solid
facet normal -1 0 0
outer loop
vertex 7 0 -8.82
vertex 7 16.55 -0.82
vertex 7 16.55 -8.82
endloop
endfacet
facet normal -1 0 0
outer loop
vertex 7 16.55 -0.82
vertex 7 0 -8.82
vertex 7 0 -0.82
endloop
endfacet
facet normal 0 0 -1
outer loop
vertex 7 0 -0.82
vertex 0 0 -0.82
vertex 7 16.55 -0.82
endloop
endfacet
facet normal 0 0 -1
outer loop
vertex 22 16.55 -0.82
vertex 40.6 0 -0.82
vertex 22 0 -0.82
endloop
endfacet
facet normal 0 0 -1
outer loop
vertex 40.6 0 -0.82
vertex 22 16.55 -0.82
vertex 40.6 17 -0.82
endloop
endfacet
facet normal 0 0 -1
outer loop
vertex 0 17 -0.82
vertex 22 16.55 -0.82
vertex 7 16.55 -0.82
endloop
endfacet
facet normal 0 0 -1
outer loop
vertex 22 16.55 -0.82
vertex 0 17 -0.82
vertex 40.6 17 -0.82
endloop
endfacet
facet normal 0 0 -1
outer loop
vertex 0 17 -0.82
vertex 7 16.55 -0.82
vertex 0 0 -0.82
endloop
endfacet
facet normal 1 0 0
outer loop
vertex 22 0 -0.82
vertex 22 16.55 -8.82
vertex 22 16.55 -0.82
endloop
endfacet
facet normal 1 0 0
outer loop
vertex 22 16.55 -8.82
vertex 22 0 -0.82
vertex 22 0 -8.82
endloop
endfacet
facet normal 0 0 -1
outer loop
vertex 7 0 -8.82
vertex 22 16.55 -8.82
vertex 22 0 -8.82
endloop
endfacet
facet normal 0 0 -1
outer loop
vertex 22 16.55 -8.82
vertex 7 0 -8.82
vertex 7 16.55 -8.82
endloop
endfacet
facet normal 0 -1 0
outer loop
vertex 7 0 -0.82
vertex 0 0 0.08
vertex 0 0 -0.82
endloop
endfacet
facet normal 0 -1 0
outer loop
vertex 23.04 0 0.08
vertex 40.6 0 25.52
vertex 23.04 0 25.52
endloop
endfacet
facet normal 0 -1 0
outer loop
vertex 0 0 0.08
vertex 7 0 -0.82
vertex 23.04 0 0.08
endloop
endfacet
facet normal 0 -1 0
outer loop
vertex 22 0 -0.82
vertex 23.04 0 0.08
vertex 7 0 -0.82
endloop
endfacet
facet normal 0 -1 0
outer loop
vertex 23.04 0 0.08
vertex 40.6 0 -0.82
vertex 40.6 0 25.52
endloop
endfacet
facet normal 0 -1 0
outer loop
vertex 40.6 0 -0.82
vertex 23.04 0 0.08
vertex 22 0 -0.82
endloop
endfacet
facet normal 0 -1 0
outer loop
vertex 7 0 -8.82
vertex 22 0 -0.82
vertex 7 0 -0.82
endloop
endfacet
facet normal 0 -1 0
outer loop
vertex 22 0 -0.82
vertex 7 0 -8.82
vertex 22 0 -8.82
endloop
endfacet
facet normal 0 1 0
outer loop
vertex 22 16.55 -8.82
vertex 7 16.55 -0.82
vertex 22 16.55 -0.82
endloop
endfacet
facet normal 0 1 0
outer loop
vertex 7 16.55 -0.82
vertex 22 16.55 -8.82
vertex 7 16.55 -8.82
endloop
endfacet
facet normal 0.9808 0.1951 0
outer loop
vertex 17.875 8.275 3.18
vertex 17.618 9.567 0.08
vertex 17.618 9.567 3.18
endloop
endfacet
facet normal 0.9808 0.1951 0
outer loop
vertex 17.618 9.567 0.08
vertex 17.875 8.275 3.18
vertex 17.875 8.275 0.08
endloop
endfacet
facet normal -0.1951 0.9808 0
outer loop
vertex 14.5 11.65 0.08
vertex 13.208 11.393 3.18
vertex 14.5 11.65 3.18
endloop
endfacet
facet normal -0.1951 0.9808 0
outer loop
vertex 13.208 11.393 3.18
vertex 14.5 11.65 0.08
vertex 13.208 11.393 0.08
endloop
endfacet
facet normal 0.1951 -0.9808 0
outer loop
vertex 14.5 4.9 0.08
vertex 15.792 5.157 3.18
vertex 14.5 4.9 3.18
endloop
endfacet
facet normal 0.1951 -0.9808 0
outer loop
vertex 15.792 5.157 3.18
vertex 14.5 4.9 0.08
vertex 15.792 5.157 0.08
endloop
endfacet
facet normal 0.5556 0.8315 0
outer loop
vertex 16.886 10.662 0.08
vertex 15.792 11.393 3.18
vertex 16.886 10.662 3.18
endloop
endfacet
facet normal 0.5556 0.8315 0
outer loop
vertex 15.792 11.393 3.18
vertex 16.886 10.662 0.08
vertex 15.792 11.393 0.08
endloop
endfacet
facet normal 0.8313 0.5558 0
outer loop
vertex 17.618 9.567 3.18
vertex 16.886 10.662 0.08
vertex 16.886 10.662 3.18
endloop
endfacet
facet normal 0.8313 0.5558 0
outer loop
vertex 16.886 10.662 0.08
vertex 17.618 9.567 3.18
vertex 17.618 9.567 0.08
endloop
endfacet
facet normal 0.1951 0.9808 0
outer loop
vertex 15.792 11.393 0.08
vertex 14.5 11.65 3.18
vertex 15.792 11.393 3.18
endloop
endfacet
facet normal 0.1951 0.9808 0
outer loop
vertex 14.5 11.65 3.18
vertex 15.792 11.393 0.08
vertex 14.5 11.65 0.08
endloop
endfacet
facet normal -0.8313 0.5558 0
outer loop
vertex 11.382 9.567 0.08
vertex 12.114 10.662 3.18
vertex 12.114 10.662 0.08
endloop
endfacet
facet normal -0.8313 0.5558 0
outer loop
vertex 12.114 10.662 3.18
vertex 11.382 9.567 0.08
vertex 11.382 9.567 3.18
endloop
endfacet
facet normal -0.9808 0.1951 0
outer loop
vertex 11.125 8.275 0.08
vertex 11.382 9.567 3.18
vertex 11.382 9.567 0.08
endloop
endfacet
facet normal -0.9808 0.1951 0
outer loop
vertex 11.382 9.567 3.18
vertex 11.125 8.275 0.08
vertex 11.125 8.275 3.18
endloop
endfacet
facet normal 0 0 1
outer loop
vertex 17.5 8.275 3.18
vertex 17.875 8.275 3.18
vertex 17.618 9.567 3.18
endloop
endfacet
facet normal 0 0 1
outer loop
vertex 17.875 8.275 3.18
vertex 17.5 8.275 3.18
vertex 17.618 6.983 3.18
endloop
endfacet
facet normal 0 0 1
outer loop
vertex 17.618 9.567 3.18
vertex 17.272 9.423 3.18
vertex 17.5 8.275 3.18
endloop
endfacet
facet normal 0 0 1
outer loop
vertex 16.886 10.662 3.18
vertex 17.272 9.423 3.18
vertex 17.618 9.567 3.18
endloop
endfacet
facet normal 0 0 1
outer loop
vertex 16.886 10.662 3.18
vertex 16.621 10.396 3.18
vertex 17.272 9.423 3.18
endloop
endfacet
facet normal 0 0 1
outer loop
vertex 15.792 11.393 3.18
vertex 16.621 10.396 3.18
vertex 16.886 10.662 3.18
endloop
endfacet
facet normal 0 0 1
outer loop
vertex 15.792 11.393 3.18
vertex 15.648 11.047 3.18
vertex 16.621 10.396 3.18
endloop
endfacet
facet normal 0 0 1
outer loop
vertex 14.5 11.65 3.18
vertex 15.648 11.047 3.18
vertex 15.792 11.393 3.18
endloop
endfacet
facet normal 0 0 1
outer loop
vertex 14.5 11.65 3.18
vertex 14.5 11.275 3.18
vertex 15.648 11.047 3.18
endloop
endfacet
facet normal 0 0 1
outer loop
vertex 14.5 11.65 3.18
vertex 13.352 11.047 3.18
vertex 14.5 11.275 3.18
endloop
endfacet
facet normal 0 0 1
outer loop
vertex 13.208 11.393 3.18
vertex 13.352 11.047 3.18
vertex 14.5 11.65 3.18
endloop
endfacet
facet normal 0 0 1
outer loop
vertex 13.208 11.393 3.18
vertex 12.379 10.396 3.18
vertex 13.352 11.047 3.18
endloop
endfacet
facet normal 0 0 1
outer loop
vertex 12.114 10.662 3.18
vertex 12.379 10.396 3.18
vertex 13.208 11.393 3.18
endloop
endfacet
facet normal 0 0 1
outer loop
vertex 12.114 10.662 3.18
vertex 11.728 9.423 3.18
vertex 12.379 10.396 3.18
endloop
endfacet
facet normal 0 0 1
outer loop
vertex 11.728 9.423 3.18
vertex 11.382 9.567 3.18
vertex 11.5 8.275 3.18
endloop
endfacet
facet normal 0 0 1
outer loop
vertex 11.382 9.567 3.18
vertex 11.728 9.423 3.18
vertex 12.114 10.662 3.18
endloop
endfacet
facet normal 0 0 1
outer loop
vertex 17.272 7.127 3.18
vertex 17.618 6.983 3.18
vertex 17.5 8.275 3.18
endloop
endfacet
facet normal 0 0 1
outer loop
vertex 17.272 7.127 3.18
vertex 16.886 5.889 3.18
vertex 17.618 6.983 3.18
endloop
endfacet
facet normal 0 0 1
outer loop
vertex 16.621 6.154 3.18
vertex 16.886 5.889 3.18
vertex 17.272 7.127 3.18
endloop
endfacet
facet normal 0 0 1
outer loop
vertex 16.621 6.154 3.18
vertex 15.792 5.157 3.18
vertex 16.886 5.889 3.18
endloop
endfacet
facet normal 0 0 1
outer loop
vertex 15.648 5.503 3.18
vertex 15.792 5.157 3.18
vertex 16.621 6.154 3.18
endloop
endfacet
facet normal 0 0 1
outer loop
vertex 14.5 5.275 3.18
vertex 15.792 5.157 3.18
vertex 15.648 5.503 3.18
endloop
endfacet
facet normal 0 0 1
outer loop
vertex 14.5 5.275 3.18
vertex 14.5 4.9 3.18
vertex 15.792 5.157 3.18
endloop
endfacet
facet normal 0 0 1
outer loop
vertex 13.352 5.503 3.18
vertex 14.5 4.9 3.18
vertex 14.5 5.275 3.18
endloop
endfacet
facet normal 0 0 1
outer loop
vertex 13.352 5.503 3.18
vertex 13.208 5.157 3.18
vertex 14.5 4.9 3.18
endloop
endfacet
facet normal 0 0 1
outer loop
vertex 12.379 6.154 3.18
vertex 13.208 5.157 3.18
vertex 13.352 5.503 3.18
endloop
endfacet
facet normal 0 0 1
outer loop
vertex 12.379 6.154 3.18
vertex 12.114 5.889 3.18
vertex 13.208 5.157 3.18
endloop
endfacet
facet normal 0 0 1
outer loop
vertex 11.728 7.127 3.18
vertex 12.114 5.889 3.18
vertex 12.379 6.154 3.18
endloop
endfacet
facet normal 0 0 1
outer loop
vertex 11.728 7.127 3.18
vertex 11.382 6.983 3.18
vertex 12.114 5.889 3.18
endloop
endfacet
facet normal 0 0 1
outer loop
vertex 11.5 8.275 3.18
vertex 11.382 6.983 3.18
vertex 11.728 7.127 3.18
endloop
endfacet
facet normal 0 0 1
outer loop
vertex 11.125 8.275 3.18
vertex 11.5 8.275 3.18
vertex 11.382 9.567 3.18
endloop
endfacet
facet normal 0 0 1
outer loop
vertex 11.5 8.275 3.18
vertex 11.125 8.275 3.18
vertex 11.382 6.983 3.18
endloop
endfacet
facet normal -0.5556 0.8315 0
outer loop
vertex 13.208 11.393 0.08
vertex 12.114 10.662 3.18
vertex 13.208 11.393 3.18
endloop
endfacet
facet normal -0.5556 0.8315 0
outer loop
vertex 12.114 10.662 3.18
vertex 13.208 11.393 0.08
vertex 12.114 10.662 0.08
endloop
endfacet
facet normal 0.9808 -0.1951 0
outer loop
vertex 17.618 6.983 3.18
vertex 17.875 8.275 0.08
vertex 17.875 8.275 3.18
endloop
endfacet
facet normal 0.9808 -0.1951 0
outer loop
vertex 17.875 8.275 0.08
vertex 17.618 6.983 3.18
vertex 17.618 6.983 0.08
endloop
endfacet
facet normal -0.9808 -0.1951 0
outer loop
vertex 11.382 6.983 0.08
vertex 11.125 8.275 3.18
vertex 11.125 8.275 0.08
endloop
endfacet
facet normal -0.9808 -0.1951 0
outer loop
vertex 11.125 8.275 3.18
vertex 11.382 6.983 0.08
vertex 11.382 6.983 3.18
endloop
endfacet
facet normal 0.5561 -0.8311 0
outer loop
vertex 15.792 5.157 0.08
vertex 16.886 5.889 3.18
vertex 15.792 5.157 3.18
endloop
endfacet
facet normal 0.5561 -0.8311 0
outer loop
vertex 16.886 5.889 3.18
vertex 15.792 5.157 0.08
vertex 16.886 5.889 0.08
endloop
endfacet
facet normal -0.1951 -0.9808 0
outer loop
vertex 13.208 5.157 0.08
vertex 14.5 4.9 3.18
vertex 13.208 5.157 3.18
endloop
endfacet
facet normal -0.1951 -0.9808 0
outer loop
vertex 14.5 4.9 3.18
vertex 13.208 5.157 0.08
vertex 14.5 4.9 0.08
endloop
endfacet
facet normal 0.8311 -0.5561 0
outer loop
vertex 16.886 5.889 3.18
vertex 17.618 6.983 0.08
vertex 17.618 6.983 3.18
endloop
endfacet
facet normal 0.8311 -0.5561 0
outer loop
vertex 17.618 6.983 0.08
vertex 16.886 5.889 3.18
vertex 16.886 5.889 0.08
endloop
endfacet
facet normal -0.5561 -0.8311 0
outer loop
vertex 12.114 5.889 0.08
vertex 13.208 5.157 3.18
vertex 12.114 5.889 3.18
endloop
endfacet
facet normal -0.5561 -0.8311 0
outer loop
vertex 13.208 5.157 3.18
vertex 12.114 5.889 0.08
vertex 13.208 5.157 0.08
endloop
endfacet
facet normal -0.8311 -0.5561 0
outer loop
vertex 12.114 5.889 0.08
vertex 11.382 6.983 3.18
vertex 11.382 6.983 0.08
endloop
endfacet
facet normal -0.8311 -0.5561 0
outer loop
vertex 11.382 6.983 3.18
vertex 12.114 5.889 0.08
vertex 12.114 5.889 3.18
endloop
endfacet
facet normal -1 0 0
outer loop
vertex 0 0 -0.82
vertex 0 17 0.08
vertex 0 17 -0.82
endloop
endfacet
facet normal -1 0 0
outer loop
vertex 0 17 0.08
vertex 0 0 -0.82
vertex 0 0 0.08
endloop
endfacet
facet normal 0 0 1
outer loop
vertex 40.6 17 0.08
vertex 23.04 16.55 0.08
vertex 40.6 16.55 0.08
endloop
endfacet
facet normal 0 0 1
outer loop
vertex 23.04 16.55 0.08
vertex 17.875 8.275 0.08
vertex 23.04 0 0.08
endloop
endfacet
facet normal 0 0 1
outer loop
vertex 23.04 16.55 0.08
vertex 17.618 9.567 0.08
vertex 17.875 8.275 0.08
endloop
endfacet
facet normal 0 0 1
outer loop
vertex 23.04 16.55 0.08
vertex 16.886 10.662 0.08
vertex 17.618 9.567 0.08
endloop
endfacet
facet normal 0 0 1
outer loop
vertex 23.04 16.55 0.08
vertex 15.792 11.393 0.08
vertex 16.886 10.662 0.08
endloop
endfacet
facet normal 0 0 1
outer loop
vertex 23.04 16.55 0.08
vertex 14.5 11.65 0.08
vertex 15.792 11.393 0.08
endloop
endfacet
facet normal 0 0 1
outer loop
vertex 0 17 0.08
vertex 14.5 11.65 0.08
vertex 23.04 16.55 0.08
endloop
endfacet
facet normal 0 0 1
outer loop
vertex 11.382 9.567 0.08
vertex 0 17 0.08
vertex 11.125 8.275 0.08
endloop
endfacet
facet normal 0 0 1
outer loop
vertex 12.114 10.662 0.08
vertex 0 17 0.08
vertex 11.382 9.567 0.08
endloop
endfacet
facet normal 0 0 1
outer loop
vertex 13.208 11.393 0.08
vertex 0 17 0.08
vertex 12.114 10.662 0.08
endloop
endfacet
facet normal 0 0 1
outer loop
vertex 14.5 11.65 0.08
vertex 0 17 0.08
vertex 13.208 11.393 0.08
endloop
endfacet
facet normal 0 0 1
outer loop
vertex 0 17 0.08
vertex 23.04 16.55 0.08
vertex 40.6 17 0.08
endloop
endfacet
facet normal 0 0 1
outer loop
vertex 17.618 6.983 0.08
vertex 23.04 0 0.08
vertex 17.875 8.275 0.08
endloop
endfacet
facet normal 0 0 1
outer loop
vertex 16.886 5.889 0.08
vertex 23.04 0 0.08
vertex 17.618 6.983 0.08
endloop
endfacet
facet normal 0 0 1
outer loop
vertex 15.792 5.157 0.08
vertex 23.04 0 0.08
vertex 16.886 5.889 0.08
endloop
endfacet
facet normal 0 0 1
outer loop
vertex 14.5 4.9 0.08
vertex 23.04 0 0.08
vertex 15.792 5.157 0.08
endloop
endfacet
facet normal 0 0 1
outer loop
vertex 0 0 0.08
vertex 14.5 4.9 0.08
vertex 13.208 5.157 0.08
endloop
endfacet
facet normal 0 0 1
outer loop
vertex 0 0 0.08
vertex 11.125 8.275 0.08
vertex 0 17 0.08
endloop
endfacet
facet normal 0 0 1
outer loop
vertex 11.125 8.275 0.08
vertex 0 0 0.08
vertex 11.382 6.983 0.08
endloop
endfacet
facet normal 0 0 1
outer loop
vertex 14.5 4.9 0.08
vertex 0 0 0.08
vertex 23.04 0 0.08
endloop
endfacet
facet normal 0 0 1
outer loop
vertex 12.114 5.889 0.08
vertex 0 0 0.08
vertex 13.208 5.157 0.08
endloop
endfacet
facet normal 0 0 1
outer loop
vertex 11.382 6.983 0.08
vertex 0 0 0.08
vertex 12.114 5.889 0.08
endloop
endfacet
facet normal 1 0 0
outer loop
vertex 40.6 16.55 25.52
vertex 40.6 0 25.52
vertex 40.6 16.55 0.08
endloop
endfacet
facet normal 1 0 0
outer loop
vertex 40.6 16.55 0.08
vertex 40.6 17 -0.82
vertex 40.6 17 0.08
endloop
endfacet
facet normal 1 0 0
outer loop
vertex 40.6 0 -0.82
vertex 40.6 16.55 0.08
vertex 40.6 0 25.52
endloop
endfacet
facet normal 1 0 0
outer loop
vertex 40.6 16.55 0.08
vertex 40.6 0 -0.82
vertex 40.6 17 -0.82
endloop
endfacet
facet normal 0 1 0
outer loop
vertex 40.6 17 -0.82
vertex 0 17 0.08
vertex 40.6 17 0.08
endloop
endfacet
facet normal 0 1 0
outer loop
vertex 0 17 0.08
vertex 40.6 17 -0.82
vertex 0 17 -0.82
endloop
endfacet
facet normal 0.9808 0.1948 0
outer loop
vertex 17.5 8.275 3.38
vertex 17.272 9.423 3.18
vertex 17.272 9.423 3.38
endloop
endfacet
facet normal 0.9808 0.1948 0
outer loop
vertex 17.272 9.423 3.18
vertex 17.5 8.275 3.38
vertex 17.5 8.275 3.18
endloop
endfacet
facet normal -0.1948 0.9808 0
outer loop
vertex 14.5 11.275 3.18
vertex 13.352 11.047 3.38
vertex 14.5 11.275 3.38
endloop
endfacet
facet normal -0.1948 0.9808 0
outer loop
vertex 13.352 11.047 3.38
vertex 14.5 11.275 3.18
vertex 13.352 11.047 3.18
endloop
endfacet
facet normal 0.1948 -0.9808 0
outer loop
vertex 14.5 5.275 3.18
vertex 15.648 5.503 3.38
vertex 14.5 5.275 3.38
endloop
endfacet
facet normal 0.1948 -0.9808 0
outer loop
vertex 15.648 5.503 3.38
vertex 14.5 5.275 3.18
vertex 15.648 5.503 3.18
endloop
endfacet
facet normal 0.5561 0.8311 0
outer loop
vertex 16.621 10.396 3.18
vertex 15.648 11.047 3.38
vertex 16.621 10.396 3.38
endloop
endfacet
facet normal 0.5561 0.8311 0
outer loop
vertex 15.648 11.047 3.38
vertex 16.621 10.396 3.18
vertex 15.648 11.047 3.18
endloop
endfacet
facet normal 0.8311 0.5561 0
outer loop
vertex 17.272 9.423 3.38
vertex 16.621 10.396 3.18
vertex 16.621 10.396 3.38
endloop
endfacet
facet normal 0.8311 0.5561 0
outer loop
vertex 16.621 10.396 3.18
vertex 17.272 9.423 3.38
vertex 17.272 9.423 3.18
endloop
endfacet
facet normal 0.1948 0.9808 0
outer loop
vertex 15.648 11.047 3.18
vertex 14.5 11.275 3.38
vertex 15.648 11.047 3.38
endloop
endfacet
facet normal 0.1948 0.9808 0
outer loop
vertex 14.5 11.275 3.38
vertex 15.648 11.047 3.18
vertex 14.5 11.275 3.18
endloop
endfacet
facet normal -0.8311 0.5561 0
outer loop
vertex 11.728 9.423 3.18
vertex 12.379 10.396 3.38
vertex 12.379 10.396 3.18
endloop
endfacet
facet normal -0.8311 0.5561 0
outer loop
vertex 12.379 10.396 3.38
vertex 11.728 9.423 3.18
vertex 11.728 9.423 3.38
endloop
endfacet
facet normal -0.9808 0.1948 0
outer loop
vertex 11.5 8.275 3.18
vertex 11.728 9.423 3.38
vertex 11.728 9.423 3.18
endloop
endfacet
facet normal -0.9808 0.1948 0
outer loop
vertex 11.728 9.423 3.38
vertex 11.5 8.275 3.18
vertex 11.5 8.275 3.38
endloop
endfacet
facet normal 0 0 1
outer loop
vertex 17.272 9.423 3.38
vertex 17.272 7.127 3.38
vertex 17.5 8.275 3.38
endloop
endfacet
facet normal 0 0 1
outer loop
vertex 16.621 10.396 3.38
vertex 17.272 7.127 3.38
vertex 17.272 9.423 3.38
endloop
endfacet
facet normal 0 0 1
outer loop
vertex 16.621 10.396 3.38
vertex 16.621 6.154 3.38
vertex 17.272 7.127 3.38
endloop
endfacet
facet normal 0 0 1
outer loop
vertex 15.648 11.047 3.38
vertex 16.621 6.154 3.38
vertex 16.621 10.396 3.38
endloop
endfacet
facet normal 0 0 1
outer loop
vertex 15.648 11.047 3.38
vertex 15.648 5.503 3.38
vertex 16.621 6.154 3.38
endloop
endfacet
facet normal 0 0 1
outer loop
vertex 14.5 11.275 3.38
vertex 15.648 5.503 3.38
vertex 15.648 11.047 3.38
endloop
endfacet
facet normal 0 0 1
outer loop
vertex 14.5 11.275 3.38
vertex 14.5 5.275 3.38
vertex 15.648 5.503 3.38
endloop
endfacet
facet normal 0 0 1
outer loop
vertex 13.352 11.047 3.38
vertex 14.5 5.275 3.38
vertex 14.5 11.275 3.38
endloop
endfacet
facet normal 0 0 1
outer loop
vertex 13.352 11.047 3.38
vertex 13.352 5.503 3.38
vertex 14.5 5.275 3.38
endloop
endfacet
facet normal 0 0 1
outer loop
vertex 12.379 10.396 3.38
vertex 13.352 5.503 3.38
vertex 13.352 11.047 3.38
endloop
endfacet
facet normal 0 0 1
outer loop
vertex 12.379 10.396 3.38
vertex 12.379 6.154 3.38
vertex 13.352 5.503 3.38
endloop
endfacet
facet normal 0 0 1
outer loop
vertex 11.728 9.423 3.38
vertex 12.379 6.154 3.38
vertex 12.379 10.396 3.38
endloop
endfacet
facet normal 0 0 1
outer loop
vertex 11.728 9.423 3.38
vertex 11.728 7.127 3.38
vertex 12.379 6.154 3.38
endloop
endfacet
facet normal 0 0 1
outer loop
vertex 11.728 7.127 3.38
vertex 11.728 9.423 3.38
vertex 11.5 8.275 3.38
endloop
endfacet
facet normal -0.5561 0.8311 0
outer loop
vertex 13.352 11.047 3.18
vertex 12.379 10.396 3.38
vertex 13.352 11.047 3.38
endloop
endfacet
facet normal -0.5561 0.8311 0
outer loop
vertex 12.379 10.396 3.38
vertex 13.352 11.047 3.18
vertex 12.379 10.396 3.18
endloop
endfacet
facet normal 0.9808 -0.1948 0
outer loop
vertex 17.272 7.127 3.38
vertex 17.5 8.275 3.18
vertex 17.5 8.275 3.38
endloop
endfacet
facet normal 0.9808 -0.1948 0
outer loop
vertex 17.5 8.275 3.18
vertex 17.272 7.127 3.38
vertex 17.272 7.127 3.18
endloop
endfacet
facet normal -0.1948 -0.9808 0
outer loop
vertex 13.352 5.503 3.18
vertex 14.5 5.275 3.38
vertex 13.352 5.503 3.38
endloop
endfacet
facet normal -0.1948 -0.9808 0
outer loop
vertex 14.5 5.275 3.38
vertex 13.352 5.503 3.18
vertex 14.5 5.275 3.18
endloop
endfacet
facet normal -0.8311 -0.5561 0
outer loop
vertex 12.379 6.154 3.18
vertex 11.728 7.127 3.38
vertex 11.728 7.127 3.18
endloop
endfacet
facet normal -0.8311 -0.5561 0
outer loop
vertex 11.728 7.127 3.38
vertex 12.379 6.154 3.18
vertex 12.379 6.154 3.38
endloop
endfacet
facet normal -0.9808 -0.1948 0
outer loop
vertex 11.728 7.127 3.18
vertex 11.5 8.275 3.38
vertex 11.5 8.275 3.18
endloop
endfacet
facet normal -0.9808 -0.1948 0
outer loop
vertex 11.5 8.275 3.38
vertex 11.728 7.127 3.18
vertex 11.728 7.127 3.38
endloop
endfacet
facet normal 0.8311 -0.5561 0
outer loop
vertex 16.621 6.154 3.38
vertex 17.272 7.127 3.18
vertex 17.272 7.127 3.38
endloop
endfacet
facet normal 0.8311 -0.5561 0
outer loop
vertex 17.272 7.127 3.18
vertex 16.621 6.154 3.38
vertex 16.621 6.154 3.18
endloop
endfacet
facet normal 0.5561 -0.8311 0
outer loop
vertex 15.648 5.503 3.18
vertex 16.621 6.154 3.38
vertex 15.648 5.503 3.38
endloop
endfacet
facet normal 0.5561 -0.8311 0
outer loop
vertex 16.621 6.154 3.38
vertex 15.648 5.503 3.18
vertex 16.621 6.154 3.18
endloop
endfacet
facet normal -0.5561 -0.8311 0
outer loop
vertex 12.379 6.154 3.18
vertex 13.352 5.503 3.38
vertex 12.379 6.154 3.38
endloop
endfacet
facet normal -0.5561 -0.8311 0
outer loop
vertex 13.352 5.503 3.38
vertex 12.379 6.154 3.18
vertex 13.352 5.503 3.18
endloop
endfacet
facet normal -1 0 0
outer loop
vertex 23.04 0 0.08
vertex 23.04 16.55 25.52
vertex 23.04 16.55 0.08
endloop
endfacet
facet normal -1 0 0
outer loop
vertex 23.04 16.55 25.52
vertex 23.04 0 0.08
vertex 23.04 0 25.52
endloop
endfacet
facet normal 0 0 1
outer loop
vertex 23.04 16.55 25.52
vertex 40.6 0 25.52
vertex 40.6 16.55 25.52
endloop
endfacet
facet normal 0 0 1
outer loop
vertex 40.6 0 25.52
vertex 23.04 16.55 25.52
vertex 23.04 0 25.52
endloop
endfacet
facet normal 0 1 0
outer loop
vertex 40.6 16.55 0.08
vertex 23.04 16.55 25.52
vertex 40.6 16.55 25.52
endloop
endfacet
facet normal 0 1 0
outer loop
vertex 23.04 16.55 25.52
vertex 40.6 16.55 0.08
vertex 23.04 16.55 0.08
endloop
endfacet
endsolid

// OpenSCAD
// A push switch cover from https://www.sparkfun.com/products/9278

$fn = 16;

length = 15;
width = 16.55;
height = 8;

plate_height = 0;
shaft_offset = 7;

toggle_switch_with_cover();

module base() {
    translate([shaft_offset, 0, 0])
        cube([length, width, height]);
}

module shaft() {
    translate([length/2 + shaft_offset, width/2, height]) cylinder(h = 4, r = 6.75 / 2);
}

module plate() {
    translate([0, 0, height + plate_height]) cube([40.6, 17, .9]);
}

module button() {
    translate([length/2 + shaft_offset, width/2, height])
        cylinder(h = 4.2, r = 6/2);    
}

module cover() {
    color("red") translate([40.6 - 17.56, 0, height])
        cube([17.56, width, 43.9 - 17.56]);
}

module toggle_switch_with_cover() {
    translate([0, 0, -height - .82 - plate_height]) 
        union() {
            base();
            color("black") shaft();
            color("silver") plate();
            color("red") button();
            color("red") cover();
        }
}
